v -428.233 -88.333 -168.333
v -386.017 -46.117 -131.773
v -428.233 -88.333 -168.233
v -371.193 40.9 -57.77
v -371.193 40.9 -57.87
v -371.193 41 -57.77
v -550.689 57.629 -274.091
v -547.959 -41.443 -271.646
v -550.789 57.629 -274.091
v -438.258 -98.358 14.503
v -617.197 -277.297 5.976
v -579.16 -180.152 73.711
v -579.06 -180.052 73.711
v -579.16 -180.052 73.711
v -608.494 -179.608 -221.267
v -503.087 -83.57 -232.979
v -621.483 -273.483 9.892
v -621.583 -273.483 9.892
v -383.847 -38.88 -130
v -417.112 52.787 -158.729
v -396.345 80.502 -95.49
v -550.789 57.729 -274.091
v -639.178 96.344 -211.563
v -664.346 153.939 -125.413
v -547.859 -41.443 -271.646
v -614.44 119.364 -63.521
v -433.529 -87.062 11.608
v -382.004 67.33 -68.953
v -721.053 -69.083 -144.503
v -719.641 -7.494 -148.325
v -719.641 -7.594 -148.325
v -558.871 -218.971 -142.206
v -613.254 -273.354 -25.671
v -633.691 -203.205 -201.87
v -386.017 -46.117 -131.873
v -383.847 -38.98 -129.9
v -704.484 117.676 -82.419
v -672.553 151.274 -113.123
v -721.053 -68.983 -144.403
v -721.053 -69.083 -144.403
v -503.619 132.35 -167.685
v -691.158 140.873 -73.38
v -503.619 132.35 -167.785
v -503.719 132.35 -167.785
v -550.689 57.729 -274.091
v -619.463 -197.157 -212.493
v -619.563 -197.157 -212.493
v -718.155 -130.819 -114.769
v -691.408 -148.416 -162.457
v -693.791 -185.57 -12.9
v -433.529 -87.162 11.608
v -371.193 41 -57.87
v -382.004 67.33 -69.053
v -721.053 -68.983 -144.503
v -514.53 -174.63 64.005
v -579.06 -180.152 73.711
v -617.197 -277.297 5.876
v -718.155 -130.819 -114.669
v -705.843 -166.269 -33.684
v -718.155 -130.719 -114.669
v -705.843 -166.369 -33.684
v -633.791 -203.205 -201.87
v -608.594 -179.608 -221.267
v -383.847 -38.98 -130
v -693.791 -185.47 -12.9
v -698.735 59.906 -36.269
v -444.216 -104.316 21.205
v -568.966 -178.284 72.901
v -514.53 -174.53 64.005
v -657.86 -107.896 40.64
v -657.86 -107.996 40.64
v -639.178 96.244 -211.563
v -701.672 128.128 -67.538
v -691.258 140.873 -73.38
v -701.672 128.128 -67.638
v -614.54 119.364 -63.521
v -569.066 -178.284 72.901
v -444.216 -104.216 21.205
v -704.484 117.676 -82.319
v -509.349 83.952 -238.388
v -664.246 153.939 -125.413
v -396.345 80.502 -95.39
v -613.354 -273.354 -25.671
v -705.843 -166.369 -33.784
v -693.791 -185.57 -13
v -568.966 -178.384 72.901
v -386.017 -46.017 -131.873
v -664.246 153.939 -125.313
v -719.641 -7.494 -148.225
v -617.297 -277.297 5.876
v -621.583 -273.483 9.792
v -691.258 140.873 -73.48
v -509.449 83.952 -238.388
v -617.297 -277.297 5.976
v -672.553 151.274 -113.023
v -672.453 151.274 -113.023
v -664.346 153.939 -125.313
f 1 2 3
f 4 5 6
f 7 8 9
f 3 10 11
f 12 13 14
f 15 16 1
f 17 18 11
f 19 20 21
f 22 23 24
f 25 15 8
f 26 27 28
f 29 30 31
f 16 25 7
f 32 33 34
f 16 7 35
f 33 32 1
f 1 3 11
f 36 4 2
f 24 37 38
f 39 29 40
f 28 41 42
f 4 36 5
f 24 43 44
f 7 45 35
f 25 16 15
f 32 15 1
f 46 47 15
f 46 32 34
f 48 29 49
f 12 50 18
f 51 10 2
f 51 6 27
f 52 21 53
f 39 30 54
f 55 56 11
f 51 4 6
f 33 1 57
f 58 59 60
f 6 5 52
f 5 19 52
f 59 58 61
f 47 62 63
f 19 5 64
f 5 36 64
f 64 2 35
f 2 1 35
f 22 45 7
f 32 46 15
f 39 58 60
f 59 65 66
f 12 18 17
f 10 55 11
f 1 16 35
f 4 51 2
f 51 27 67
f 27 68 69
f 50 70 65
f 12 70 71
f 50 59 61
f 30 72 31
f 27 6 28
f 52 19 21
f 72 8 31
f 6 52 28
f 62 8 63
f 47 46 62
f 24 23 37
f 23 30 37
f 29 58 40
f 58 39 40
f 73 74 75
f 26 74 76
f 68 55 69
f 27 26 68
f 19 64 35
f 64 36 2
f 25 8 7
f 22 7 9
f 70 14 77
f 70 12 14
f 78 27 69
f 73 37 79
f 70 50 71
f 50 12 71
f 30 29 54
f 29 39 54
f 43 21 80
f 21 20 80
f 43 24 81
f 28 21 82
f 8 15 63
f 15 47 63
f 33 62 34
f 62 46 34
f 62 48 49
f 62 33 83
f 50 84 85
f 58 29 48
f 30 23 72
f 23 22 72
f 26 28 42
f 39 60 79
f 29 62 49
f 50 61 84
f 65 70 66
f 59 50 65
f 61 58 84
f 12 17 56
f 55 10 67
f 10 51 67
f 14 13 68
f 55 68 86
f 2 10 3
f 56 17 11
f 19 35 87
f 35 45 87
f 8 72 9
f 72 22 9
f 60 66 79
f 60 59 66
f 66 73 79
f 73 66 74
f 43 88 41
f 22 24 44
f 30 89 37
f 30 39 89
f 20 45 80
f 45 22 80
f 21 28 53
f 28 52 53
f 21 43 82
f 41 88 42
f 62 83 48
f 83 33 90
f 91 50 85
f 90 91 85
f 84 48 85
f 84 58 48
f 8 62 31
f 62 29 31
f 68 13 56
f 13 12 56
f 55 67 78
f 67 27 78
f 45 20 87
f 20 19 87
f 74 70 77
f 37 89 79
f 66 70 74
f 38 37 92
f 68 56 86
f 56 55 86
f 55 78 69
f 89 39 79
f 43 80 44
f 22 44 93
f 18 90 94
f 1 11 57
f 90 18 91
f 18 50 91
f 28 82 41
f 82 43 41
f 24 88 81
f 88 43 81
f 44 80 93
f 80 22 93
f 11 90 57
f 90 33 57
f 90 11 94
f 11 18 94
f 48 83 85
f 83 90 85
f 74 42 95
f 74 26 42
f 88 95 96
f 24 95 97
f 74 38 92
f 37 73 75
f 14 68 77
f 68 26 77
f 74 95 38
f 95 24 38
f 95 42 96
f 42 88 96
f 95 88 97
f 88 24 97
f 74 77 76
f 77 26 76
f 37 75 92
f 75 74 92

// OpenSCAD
hull(){ translate([-383.947368421,-38.9802631579,-130.0])cube(0.1,0.1,0.1);
translate([-386.11662531,-46.1166253102,-131.873449132])cube(0.1,0.1,0.1);
translate([-371.293066388,40.9000184241,-57.8704784131])cube(0.1,0.1,0.1);
translate([-382.103797097,67.229878317,-69.0529247911])cube(0.1,0.1,0.1);
translate([-433.628922237,-87.1623465211,11.5075034106])cube(0.1,0.1,0.1);
translate([-438.358208955,-98.3582089552,14.4029850746])cube(0.1,0.1,0.1);
translate([-444.315789474,-104.315789474,21.1052631579])cube(0.1,0.1,0.1);
translate([-614.540276648,119.263628967,-63.620829943])cube(0.1,0.1,0.1);
translate([-698.734683005,59.8055407565,-36.3692061801])cube(0.1,0.1,0.1);
translate([-718.155444722,-130.818786367,-114.768911056])cube(0.1,0.1,0.1);
translate([-691.407713499,-148.415977961,-162.457300275])cube(0.1,0.1,0.1);
translate([-721.053254438,-69.0828402367,-144.50295858])cube(0.1,0.1,0.1);
translate([-705.843017893,-166.368751153,-33.7843571297])cube(0.1,0.1,0.1);
translate([-428.333333333,-88.3333333333,-168.333333333])cube(0.1,0.1,0.1);
translate([-514.62962963,-174.62962963,63.9049919485])cube(0.1,0.1,0.1);
translate([-569.066350711,-178.383886256,72.8009478673])cube(0.1,0.1,0.1);
translate([-617.296954315,-277.296954315,5.87563451777])cube(0.1,0.1,0.1);
translate([-417.21212596,52.6868243773,-158.728654238])cube(0.1,0.1,0.1);
translate([-396.445038044,80.4022988506,-95.4905293832])cube(0.1,0.1,0.1);
translate([-547.958761511,-41.443347124,-271.646203123])cube(0.1,0.1,0.1);
translate([-503.186528497,-83.5699481865,-232.979274611])cube(0.1,0.1,0.1);
translate([-608.594470046,-179.608294931,-221.267281106])cube(0.1,0.1,0.1);
translate([-693.791432332,-185.569582386,-13.0004786407])cube(0.1,0.1,0.1);
translate([-621.583359205,-273.483390251,9.7919900652])cube(0.1,0.1,0.1);
translate([-657.860004451,-107.9957712,40.5397284665])cube(0.1,0.1,0.1);
translate([-579.160057678,-180.152126893,73.6113914924])cube(0.1,0.1,0.1);
translate([-503.718807727,132.250070447,-167.785309496])cube(0.1,0.1,0.1);
translate([-550.789412651,57.6294428016,-274.090856381])cube(0.1,0.1,0.1);
translate([-509.448852366,83.8516576934,-238.387645225])cube(0.1,0.1,0.1);
translate([-633.790592009,-203.205265268,-201.870239209])cube(0.1,0.1,0.1);
translate([-619.562682216,-197.157434402,-212.49271137])cube(0.1,0.1,0.1);
translate([-613.353658537,-273.353658537,-25.6707317073])cube(0.1,0.1,0.1);
translate([-558.970588235,-218.970588235,-142.205882353])cube(0.1,0.1,0.1);
translate([-701.672049151,128.028238352,-67.6379425781])cube(0.1,0.1,0.1);
translate([-691.258345697,140.773367953,-73.4794603116])cube(0.1,0.1,0.1);
translate([-639.178114268,96.244146113,-211.563378083])cube(0.1,0.1,0.1);
translate([-719.640682095,-7.59439707674,-148.325213155])cube(0.1,0.1,0.1);
translate([-704.484007488,117.57589322,-82.4192235696])cube(0.1,0.1,0.1);
translate([-664.345533915,153.838817999,-125.413364674])cube(0.1,0.1,0.1);
translate([-672.552553587,151.174098835,-113.122544627])cube(0.1,0.1,0.1); }
